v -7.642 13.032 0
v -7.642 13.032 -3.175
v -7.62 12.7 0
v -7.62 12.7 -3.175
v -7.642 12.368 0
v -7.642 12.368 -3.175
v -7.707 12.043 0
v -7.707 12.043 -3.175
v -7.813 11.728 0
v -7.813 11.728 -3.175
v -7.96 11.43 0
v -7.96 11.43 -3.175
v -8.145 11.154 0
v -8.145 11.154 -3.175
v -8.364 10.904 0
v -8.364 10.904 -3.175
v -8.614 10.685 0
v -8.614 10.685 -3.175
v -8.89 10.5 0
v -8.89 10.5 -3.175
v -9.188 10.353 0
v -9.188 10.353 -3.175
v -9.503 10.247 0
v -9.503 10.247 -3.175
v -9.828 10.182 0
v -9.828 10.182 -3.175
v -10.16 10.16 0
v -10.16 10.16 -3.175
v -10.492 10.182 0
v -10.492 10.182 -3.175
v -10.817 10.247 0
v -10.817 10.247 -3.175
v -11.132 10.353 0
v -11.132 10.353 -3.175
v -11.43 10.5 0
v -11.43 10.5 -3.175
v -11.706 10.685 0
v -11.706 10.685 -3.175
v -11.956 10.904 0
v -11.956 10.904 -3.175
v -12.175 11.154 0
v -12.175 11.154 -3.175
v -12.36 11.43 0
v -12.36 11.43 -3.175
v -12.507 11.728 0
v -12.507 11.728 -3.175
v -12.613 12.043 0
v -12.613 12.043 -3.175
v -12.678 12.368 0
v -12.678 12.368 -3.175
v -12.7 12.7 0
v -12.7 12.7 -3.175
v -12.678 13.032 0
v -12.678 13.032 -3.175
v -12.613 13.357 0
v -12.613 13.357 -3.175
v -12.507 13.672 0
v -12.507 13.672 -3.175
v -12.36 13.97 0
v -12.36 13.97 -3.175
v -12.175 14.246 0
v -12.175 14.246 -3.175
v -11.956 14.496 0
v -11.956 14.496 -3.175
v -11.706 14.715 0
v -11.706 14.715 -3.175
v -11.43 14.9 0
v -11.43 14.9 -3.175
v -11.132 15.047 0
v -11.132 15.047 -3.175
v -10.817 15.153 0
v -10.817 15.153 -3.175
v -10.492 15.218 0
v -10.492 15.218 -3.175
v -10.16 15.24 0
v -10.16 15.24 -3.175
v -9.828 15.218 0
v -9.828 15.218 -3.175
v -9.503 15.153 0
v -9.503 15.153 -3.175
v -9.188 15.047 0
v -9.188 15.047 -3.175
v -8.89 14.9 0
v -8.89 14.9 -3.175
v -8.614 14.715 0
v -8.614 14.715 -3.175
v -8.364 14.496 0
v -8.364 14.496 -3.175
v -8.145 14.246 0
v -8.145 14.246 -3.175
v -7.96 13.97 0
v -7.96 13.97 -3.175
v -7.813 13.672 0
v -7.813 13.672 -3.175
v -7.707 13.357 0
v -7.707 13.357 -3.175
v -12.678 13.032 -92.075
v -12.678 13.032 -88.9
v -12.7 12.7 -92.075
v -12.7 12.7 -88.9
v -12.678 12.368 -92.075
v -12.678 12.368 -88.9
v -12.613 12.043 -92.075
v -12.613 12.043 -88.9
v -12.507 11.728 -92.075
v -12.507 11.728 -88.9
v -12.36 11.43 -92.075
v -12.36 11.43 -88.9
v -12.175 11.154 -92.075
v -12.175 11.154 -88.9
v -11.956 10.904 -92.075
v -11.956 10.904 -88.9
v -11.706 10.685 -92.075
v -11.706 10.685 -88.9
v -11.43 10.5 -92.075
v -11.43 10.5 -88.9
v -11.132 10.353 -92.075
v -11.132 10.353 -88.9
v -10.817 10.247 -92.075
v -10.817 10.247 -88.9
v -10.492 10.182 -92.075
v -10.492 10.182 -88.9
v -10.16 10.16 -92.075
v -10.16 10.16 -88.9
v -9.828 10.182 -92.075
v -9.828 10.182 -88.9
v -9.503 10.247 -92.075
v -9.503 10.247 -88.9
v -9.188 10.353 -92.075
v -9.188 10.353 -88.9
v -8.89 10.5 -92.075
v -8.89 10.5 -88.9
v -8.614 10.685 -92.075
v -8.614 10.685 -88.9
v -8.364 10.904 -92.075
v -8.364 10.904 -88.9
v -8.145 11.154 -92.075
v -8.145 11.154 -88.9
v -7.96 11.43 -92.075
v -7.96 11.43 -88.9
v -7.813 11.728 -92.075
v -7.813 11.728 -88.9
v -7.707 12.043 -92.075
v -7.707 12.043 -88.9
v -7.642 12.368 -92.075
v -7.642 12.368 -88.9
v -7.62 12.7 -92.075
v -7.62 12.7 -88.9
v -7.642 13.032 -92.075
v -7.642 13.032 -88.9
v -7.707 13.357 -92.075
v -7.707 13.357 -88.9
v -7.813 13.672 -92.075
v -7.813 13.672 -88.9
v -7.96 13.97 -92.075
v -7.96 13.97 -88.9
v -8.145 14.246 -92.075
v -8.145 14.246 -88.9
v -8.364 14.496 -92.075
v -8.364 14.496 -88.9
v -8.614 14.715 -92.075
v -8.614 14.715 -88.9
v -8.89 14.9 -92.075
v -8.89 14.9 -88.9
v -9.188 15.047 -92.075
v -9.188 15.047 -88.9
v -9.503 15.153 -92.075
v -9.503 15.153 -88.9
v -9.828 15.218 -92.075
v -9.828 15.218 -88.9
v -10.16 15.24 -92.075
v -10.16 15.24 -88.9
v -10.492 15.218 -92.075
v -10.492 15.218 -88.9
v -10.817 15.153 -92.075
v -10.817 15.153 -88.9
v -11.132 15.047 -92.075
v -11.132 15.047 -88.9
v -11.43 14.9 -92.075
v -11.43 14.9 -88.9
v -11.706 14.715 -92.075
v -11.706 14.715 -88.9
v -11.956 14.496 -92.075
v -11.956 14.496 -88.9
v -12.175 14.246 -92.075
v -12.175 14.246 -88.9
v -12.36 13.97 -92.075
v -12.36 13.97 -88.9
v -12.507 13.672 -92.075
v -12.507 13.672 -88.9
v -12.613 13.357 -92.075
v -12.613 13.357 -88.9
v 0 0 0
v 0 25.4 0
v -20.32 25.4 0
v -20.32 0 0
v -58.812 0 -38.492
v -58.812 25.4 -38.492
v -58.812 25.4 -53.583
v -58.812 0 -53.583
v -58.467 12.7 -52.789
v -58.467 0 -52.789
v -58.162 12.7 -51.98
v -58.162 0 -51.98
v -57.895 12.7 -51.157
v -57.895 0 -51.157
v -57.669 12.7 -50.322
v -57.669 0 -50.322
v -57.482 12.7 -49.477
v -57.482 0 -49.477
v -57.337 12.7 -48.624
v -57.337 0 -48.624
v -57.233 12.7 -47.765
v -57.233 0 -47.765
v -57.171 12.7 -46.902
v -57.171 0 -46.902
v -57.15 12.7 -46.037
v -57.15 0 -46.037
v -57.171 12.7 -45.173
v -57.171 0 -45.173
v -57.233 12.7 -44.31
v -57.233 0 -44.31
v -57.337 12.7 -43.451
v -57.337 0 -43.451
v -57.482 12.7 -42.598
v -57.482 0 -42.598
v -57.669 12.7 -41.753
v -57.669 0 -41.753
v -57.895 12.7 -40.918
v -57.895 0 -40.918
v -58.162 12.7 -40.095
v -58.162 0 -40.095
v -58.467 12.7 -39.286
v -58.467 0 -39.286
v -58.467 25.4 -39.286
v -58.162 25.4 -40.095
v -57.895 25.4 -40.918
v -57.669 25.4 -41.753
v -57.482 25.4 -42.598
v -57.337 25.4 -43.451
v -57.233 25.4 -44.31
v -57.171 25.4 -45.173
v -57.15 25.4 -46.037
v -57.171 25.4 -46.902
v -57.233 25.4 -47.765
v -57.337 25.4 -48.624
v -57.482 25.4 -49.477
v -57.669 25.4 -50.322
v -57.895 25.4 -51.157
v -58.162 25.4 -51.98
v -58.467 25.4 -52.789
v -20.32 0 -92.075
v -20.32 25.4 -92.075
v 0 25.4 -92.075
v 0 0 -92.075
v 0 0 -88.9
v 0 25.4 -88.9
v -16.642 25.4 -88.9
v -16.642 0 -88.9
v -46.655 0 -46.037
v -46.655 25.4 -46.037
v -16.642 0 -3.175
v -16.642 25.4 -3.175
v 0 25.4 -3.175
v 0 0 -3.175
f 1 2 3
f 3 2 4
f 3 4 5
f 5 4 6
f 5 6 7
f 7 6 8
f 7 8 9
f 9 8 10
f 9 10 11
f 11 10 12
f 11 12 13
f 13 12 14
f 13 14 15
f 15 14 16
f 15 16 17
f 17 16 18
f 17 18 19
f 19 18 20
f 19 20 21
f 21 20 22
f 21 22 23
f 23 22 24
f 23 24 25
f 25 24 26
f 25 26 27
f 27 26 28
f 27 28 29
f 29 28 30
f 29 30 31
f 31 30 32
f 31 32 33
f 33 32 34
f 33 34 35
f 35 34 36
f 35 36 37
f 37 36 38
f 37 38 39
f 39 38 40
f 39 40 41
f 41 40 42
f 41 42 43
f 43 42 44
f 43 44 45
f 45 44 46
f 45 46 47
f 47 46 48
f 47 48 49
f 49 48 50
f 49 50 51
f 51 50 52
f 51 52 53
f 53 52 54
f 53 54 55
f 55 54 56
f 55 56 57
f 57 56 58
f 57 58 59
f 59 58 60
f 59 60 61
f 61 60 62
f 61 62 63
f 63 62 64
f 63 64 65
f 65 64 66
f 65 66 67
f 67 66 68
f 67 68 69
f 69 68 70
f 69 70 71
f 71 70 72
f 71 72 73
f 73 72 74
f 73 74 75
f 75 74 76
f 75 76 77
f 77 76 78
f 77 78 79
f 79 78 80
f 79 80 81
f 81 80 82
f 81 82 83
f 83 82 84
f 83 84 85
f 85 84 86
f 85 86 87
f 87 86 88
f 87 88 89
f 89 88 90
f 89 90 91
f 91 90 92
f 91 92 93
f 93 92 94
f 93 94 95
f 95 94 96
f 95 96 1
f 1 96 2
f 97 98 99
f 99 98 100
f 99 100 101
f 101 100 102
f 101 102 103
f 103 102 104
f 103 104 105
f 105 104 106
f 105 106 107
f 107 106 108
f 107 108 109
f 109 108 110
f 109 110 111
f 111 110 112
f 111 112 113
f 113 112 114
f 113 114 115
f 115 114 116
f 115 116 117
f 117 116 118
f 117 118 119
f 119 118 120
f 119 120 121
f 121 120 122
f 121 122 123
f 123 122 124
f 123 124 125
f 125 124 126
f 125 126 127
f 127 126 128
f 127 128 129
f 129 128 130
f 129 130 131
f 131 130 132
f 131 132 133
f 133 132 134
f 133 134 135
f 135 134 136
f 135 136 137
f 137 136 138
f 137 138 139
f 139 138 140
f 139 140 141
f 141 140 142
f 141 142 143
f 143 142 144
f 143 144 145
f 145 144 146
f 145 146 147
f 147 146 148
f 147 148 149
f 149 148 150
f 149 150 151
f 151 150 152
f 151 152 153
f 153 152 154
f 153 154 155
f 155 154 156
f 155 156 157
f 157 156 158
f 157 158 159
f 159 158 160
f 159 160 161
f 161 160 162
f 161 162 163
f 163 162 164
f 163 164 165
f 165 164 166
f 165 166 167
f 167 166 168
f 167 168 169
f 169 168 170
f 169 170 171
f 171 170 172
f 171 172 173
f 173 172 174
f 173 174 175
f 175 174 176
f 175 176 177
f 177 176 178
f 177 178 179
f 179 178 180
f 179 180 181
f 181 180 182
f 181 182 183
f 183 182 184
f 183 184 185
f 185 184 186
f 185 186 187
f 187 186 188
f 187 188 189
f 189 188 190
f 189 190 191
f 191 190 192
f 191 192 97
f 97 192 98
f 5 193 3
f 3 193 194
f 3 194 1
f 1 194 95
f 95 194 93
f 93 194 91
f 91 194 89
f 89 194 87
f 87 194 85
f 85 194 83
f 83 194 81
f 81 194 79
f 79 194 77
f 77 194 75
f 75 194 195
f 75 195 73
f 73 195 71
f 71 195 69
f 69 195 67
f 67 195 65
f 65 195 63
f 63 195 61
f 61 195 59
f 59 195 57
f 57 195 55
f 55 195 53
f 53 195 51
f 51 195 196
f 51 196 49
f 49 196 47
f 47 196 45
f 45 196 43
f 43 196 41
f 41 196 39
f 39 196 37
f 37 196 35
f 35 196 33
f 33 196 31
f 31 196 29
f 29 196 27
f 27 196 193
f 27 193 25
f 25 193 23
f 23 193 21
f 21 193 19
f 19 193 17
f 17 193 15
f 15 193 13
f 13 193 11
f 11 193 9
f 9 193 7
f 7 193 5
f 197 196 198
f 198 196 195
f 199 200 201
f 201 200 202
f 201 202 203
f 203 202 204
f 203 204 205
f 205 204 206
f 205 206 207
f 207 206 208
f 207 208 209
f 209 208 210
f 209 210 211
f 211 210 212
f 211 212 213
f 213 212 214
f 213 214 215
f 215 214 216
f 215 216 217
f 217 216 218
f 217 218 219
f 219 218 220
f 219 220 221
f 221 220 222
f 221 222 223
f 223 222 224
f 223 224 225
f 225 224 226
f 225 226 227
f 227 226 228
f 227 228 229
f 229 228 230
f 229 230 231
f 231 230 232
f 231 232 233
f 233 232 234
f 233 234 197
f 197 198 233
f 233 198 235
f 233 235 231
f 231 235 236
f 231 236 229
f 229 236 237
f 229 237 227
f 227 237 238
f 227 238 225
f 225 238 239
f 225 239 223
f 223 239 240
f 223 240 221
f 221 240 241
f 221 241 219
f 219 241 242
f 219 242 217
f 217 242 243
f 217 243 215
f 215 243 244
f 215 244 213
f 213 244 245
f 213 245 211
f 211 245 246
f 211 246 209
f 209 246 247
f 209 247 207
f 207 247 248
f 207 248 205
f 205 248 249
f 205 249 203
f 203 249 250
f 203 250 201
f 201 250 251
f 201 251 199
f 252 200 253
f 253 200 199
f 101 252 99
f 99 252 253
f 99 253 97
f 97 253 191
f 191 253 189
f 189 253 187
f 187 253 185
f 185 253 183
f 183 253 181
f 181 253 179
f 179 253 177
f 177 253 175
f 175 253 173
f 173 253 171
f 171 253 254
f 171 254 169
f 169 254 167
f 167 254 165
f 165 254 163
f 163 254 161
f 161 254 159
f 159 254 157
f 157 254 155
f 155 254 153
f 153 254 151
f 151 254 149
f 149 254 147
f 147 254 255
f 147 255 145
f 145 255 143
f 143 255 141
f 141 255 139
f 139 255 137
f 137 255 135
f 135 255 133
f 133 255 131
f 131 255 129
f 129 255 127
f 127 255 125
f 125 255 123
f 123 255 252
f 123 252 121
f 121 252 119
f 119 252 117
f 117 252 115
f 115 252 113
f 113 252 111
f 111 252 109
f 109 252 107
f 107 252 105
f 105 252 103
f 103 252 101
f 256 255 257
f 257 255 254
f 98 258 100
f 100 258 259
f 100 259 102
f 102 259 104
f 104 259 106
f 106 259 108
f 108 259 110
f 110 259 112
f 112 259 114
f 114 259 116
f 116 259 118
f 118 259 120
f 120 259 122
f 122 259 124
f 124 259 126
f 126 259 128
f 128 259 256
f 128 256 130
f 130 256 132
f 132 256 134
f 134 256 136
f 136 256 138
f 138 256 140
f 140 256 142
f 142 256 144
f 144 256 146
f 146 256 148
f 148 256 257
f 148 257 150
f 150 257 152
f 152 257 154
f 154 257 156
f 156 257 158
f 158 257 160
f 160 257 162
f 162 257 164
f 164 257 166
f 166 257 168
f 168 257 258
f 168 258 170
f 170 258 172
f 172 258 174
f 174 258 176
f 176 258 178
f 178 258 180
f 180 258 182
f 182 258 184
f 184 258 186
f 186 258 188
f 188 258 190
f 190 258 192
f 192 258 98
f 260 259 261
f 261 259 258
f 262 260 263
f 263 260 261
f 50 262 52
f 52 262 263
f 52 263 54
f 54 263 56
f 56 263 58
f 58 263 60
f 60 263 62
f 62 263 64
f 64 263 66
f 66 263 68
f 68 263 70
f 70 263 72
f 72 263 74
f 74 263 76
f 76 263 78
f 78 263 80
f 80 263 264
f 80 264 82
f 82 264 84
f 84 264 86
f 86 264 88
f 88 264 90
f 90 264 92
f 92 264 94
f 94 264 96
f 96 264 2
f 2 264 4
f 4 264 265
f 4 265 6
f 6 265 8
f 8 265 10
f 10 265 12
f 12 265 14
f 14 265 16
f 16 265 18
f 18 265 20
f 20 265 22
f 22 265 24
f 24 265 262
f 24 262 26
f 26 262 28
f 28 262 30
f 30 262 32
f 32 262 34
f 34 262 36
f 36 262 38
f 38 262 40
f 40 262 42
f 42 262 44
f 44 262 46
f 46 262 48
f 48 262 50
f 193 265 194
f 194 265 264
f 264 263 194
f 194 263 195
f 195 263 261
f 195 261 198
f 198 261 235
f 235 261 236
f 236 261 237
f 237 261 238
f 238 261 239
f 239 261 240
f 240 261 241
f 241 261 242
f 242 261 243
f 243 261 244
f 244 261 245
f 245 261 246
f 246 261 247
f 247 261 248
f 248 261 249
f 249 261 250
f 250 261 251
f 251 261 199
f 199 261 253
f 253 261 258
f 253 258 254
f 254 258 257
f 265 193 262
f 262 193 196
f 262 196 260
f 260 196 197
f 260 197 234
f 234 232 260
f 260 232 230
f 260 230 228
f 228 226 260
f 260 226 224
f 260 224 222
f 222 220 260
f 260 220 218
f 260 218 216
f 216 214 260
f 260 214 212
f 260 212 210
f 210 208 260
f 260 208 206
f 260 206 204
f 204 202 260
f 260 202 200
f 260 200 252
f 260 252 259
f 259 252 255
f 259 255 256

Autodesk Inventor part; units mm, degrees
ref_plane "YZ Plane" through (0, 0, 0) normal (1, 0, 0) x (0, 1, 0)
ref_plane "XZ Plane" through (0, 0, 0) normal (0, 1, 0) x (-1, 0, 0)
ref_plane "XY Plane" through (0, 0, 0) normal (0, 0, 1) x (1, 0, 0)
sketch "Sketch1" plane through (0, 0, 0) normal (0, 1, 0) x (-1, 0, 0)
  line L0 (0, 0) -> (0, -46.0375)
  line L1 (0, 0) -> (20.32, 0)
  line L2 (16.6421, -3.175) -> (0, -3.175)
  line L3 (0, -3.175) -> (0, 0)
  line L4 (0, -46.0375) -> (57.15, -46.0375)
  line L5 (0, -46.0375) -> (57.15, -46.0375) construction
  line L6 (20.32, 0) -> (59.69, 0) construction
  line L7 (20.32, -3.175) -> (52.07, -3.175) construction
  arc A0 (75.1105, -28.077) -> (57.15, -46.0375) centre (75.1105, -46.0375) ccw
  line L8 (57.15, -46.0375) -> (75.1105, -28.077) construction
  line L9 (57.15, -46.0375) -> (82.55, -46.0375) construction
  line L10 (20.32, 0) -> (58.8119, -38.4919)
  line L11 (20.32, 0) -> (74.7558, 0) construction
  line L12 (20.32, -3.175) -> (72.6455, -3.175) construction
  line L13 (0, -92.075) -> (0, -46.0375)
  line L14 (16.6421, -3.175) -> (46.6548, -46.0375)
  line L15 (16.6421, -3.175) -> (68.9676, -3.175) construction
  line L16 (0, -92.075) -> (0, -46.0375)
  line L17 (0, -92.075) -> (20.32, -92.075)
  line L18 (16.6421, -88.9) -> (0, -88.9)
  line L19 (0, -88.9) -> (0, -92.075)
  line L20 (20.32, -92.075) -> (59.69, -92.075) construction
  line L21 (20.32, -88.9) -> (52.07, -88.9) construction
  arc A1 (57.15, -46.0375) -> (75.1105, -63.998) centre (75.1105, -46.0375) ccw
  line L22 (57.15, -46.0375) -> (75.1105, -63.998) construction
  line L23 (20.32, -92.075) -> (58.8119, -53.5831)
  line L24 (20.32, -92.075) -> (74.7558, -92.075) construction
  line L25 (20.32, -88.9) -> (72.6455, -88.9) construction
  line L26 (16.6421, -88.9) -> (46.6548, -46.0375)
  line L27 (16.6421, -88.9) -> (68.9676, -88.9) construction
  dimension "d1" = 20.32
  dimension "d6" = 0
  dimension "d26" = 25.4
  dimension "d27" = 45
  dimension "d29" = 45
  dimension "d31" = 55
  dimension "d34" = 92.075
extrude "Extrusion1" add sketch "Sketch1" along normal blind 25.4 contours L1 L10 A0 L4 L14 L2 L0 | L4 A1 L23 L17 L13 L18 L26
sketch "Sketch2" plane through (-20.32, 0, 0) normal (0, 0, 1) x (1, 0, 0)
  line L0 (20.32, 0) -> (20.32, 25.4) projected
  line L1 (20.32, 12.7) -> (10.16, 12.7)
  circle A0 centre (10.16, 12.7) radius 2.54
  dimension "d19" = 10.16
  dimension "d20" = 5.08
extrude "Extrusion2" cut sketch "Sketch2" against normal blind 142.875
properties part number "NeckRest"
